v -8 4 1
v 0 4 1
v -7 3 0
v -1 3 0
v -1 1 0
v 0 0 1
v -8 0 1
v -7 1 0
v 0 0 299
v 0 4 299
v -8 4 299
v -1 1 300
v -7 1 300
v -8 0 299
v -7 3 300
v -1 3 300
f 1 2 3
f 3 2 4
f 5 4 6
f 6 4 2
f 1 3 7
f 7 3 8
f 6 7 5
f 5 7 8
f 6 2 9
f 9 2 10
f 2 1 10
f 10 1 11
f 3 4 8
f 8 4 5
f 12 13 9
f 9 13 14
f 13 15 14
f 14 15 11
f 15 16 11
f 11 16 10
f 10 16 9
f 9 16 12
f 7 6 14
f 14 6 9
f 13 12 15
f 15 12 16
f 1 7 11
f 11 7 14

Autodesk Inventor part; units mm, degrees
ref_plane "YZ Plane" through (0, 0, 0) normal (1, 0, 0) x (0, 1, 0)
ref_plane "XZ Plane" through (0, 0, 0) normal (0, 1, 0) x (-1, 0, 0)
ref_plane "XY Plane" through (0, 0, 0) normal (0, 0, 1) x (1, 0, 0)
sketch "Sketch1" plane through (0, 0, 0) normal (0, 0, 1) x (1, 0, 0)
  line L0 (0, 0) -> (-8, 0)
  line L1 (-8, 0) -> (-8, 4)
  line L2 (-8, 4) -> (0, 4)
  line L3 (0, 4) -> (0, 0)
  dimension "d0" = 8
  dimension "d1" = 4
extrude "Extrusion1" add sketch "Sketch1" along normal blind 300
chamfer "Chamfer1" distance 1 angle 45 4 edges at (-4, 4, 300) (0, 2, 300) (-4, 0, 300) (-8, 2, 300)
chamfer "Chamfer2" distance 1 angle 45 4 edges at (-4, 4, 0) (0, 2, 0) (-4, 0, 0) (-8, 2, 0)
properties part number "Elbow_Both_Rod_V1"
